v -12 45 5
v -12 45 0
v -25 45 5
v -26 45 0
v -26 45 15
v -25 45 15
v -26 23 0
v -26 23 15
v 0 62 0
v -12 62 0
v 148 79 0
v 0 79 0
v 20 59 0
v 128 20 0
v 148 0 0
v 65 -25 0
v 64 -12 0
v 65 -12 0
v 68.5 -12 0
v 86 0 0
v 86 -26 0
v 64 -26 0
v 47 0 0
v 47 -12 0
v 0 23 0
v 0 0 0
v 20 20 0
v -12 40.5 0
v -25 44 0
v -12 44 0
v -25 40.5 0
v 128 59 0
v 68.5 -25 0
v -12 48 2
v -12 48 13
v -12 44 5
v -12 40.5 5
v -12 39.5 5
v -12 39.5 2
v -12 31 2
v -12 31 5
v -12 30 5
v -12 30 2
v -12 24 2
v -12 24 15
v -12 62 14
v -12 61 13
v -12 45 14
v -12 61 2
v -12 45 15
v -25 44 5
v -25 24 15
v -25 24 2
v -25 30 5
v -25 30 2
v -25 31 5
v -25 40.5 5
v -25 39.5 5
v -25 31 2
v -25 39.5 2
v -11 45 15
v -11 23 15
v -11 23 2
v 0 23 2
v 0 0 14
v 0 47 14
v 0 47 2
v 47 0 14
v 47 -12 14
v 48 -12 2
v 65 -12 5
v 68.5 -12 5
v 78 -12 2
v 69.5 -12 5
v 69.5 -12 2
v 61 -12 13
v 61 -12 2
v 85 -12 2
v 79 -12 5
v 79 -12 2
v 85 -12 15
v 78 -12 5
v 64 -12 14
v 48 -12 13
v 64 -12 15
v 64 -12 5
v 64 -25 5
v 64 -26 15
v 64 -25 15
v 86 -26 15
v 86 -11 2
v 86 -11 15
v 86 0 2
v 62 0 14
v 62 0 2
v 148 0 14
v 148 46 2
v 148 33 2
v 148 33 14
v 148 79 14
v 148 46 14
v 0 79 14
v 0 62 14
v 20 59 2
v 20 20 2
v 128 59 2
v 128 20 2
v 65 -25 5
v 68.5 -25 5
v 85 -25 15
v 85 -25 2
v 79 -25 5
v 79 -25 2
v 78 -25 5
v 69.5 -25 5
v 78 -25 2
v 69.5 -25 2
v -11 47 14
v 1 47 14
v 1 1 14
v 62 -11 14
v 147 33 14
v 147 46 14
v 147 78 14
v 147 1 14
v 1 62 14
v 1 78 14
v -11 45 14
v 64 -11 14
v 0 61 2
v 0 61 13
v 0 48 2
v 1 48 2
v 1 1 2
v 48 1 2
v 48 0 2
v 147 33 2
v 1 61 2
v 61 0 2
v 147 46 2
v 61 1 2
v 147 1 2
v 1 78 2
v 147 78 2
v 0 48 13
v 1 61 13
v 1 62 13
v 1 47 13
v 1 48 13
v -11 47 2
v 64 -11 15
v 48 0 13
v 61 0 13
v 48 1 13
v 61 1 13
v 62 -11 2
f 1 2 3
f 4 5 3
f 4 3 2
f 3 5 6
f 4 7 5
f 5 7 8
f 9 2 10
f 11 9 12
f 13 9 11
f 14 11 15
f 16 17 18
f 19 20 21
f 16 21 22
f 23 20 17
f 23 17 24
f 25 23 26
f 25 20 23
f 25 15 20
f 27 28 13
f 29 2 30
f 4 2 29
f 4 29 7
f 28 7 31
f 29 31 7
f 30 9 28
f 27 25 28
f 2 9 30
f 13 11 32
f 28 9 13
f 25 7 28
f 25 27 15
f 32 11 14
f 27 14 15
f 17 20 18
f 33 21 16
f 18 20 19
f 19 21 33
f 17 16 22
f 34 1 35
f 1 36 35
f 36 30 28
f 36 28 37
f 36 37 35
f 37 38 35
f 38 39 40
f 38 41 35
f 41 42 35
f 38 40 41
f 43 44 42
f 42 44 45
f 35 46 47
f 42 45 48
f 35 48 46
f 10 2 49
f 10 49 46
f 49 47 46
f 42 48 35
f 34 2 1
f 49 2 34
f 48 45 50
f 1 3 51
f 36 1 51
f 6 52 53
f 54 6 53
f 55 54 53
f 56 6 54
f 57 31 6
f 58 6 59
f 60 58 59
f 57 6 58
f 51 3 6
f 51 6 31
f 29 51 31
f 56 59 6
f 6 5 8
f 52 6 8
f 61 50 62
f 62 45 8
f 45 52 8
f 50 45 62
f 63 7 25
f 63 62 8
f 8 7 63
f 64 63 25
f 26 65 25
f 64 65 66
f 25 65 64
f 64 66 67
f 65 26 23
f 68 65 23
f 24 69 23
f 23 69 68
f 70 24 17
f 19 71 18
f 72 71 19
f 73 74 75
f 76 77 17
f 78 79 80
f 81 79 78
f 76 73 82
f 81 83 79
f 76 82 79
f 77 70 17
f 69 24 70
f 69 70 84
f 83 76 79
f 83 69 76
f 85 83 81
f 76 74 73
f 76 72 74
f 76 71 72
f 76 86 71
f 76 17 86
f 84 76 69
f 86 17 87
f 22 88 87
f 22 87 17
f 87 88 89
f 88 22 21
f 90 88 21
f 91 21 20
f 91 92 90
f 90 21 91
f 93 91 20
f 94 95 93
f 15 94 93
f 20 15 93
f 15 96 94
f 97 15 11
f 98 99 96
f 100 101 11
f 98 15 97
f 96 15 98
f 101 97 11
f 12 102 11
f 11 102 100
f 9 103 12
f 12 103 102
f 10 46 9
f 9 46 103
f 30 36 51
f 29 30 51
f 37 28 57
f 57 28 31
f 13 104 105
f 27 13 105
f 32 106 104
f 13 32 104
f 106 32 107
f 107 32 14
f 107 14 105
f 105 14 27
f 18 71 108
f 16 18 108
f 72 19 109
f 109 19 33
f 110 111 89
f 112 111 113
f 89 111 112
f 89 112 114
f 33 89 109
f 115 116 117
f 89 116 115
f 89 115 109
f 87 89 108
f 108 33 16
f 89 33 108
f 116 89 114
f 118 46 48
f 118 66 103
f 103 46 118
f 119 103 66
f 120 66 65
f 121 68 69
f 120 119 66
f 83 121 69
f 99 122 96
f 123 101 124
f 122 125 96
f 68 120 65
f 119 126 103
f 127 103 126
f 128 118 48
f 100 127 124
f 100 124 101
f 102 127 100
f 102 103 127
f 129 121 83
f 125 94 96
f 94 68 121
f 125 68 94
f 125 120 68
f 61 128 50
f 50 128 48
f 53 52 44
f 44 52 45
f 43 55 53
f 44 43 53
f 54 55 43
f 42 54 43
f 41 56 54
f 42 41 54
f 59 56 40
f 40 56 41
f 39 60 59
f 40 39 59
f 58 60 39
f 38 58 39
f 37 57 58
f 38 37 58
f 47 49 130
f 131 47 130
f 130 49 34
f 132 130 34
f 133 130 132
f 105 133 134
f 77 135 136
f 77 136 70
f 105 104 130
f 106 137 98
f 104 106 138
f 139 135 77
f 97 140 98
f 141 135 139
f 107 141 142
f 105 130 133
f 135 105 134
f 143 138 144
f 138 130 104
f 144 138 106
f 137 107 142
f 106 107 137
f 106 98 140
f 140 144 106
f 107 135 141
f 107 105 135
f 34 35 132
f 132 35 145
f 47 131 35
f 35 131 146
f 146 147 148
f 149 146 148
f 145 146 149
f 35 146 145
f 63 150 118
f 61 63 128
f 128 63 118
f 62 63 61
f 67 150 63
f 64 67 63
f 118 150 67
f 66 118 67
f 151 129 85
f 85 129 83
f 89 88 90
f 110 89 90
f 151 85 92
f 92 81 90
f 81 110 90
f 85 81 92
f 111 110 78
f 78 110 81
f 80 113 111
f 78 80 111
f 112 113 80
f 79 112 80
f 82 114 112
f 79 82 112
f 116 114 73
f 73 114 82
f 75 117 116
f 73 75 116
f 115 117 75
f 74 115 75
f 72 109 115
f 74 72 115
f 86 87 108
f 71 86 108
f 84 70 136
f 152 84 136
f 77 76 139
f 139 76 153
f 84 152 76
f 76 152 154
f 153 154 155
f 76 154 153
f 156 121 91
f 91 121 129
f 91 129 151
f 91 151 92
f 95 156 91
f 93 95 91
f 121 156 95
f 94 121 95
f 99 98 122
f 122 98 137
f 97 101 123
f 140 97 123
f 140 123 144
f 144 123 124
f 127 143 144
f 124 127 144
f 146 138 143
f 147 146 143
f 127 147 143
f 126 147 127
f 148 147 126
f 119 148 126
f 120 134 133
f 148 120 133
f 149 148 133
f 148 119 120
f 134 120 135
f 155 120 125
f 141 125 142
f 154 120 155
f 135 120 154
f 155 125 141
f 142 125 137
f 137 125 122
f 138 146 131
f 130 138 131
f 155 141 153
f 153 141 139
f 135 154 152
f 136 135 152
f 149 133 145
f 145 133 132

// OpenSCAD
union() {
	// Device size is 144x75mm, but some padding is needed
        // Inner opening of 146x77 seems to work ok, but slightly loose
	// 1-146-1
	// |     |
	// 77    77
	// |     |
	// 1-146-1

	//base
	difference() {
		cube(size=[148,79,2]);
		translate([20,20,0])
			cube(size=[108,39,2]);
	}
	
	//left
	difference() {
		cube(size=[148,1,14]);
		translate([48,0,0])
			cube(size=[13,1,14]); // cutout for voldown
	}
	//right
	translate([0,78,0])
		cube(size=[148,1,14]); // fill in the corner
	//top
	difference() {
		translate([0, 1, 0])
			cube(size=[1,77,14]);
		translate([0,48,0])
			cube(size=[1,13,14]); // cutout for power button
	}
	//bottom
	difference() {
		translate([147,1,0])
			cube(size=[1,77,14]);
		translate([147,33,0])
			cube(size=[1,13,14]); // cutout for usb charging
	}
	//left side servo mount (volume down button)
	translate([47,0,0])
		servo_mount();
	//top side servo mount (power button)
	translate([0,62,0])
		rotate(-90)
			servo_mount();
	
}

module servo_mount() {
	// Start from edge of hole that is 13 wide,
	// the edge *opposite* the servo mount

	// This section makes the hole for the slider to 
	// push the button, thus everything is translated
	translate([0,-12,0]) {
		// short base to connect to servo mount
		cube(size=[39,12,2]);
		// slide sides
		cube(size=[1,12,14]);
		translate([14,0,0])
			cube(size=[1,12,14]);
		translate([15,0,0])
			cube(size=[2,1,14]);
		//top
		translate([0,0,13])
			cube(size=[15,13,1]);

		// This section is just the servo mount by itself
		//base
		difference() {
			translate([17,-13,0])
				cube(size=[22,13,2]);
			translate([18,-13,0])
				cube(size=[3.5,13,2]);
		}
		translate([17,-13,0])
			cube(size=[1,13,5]);
		translate([21.5,-13,0])
			cube(size=[1,13,5]);
		translate([31,-13,0])
			cube(size=[1,13,5]);
		//side walls
		translate([17,0,0])
			cube(size=[22,1,15]);
		translate([17,-14,0])
			cube(size=[22,1,15]);
		//back wall
		translate([38,-14,0])
			cube(size=[1,14,15]);
	}
}
